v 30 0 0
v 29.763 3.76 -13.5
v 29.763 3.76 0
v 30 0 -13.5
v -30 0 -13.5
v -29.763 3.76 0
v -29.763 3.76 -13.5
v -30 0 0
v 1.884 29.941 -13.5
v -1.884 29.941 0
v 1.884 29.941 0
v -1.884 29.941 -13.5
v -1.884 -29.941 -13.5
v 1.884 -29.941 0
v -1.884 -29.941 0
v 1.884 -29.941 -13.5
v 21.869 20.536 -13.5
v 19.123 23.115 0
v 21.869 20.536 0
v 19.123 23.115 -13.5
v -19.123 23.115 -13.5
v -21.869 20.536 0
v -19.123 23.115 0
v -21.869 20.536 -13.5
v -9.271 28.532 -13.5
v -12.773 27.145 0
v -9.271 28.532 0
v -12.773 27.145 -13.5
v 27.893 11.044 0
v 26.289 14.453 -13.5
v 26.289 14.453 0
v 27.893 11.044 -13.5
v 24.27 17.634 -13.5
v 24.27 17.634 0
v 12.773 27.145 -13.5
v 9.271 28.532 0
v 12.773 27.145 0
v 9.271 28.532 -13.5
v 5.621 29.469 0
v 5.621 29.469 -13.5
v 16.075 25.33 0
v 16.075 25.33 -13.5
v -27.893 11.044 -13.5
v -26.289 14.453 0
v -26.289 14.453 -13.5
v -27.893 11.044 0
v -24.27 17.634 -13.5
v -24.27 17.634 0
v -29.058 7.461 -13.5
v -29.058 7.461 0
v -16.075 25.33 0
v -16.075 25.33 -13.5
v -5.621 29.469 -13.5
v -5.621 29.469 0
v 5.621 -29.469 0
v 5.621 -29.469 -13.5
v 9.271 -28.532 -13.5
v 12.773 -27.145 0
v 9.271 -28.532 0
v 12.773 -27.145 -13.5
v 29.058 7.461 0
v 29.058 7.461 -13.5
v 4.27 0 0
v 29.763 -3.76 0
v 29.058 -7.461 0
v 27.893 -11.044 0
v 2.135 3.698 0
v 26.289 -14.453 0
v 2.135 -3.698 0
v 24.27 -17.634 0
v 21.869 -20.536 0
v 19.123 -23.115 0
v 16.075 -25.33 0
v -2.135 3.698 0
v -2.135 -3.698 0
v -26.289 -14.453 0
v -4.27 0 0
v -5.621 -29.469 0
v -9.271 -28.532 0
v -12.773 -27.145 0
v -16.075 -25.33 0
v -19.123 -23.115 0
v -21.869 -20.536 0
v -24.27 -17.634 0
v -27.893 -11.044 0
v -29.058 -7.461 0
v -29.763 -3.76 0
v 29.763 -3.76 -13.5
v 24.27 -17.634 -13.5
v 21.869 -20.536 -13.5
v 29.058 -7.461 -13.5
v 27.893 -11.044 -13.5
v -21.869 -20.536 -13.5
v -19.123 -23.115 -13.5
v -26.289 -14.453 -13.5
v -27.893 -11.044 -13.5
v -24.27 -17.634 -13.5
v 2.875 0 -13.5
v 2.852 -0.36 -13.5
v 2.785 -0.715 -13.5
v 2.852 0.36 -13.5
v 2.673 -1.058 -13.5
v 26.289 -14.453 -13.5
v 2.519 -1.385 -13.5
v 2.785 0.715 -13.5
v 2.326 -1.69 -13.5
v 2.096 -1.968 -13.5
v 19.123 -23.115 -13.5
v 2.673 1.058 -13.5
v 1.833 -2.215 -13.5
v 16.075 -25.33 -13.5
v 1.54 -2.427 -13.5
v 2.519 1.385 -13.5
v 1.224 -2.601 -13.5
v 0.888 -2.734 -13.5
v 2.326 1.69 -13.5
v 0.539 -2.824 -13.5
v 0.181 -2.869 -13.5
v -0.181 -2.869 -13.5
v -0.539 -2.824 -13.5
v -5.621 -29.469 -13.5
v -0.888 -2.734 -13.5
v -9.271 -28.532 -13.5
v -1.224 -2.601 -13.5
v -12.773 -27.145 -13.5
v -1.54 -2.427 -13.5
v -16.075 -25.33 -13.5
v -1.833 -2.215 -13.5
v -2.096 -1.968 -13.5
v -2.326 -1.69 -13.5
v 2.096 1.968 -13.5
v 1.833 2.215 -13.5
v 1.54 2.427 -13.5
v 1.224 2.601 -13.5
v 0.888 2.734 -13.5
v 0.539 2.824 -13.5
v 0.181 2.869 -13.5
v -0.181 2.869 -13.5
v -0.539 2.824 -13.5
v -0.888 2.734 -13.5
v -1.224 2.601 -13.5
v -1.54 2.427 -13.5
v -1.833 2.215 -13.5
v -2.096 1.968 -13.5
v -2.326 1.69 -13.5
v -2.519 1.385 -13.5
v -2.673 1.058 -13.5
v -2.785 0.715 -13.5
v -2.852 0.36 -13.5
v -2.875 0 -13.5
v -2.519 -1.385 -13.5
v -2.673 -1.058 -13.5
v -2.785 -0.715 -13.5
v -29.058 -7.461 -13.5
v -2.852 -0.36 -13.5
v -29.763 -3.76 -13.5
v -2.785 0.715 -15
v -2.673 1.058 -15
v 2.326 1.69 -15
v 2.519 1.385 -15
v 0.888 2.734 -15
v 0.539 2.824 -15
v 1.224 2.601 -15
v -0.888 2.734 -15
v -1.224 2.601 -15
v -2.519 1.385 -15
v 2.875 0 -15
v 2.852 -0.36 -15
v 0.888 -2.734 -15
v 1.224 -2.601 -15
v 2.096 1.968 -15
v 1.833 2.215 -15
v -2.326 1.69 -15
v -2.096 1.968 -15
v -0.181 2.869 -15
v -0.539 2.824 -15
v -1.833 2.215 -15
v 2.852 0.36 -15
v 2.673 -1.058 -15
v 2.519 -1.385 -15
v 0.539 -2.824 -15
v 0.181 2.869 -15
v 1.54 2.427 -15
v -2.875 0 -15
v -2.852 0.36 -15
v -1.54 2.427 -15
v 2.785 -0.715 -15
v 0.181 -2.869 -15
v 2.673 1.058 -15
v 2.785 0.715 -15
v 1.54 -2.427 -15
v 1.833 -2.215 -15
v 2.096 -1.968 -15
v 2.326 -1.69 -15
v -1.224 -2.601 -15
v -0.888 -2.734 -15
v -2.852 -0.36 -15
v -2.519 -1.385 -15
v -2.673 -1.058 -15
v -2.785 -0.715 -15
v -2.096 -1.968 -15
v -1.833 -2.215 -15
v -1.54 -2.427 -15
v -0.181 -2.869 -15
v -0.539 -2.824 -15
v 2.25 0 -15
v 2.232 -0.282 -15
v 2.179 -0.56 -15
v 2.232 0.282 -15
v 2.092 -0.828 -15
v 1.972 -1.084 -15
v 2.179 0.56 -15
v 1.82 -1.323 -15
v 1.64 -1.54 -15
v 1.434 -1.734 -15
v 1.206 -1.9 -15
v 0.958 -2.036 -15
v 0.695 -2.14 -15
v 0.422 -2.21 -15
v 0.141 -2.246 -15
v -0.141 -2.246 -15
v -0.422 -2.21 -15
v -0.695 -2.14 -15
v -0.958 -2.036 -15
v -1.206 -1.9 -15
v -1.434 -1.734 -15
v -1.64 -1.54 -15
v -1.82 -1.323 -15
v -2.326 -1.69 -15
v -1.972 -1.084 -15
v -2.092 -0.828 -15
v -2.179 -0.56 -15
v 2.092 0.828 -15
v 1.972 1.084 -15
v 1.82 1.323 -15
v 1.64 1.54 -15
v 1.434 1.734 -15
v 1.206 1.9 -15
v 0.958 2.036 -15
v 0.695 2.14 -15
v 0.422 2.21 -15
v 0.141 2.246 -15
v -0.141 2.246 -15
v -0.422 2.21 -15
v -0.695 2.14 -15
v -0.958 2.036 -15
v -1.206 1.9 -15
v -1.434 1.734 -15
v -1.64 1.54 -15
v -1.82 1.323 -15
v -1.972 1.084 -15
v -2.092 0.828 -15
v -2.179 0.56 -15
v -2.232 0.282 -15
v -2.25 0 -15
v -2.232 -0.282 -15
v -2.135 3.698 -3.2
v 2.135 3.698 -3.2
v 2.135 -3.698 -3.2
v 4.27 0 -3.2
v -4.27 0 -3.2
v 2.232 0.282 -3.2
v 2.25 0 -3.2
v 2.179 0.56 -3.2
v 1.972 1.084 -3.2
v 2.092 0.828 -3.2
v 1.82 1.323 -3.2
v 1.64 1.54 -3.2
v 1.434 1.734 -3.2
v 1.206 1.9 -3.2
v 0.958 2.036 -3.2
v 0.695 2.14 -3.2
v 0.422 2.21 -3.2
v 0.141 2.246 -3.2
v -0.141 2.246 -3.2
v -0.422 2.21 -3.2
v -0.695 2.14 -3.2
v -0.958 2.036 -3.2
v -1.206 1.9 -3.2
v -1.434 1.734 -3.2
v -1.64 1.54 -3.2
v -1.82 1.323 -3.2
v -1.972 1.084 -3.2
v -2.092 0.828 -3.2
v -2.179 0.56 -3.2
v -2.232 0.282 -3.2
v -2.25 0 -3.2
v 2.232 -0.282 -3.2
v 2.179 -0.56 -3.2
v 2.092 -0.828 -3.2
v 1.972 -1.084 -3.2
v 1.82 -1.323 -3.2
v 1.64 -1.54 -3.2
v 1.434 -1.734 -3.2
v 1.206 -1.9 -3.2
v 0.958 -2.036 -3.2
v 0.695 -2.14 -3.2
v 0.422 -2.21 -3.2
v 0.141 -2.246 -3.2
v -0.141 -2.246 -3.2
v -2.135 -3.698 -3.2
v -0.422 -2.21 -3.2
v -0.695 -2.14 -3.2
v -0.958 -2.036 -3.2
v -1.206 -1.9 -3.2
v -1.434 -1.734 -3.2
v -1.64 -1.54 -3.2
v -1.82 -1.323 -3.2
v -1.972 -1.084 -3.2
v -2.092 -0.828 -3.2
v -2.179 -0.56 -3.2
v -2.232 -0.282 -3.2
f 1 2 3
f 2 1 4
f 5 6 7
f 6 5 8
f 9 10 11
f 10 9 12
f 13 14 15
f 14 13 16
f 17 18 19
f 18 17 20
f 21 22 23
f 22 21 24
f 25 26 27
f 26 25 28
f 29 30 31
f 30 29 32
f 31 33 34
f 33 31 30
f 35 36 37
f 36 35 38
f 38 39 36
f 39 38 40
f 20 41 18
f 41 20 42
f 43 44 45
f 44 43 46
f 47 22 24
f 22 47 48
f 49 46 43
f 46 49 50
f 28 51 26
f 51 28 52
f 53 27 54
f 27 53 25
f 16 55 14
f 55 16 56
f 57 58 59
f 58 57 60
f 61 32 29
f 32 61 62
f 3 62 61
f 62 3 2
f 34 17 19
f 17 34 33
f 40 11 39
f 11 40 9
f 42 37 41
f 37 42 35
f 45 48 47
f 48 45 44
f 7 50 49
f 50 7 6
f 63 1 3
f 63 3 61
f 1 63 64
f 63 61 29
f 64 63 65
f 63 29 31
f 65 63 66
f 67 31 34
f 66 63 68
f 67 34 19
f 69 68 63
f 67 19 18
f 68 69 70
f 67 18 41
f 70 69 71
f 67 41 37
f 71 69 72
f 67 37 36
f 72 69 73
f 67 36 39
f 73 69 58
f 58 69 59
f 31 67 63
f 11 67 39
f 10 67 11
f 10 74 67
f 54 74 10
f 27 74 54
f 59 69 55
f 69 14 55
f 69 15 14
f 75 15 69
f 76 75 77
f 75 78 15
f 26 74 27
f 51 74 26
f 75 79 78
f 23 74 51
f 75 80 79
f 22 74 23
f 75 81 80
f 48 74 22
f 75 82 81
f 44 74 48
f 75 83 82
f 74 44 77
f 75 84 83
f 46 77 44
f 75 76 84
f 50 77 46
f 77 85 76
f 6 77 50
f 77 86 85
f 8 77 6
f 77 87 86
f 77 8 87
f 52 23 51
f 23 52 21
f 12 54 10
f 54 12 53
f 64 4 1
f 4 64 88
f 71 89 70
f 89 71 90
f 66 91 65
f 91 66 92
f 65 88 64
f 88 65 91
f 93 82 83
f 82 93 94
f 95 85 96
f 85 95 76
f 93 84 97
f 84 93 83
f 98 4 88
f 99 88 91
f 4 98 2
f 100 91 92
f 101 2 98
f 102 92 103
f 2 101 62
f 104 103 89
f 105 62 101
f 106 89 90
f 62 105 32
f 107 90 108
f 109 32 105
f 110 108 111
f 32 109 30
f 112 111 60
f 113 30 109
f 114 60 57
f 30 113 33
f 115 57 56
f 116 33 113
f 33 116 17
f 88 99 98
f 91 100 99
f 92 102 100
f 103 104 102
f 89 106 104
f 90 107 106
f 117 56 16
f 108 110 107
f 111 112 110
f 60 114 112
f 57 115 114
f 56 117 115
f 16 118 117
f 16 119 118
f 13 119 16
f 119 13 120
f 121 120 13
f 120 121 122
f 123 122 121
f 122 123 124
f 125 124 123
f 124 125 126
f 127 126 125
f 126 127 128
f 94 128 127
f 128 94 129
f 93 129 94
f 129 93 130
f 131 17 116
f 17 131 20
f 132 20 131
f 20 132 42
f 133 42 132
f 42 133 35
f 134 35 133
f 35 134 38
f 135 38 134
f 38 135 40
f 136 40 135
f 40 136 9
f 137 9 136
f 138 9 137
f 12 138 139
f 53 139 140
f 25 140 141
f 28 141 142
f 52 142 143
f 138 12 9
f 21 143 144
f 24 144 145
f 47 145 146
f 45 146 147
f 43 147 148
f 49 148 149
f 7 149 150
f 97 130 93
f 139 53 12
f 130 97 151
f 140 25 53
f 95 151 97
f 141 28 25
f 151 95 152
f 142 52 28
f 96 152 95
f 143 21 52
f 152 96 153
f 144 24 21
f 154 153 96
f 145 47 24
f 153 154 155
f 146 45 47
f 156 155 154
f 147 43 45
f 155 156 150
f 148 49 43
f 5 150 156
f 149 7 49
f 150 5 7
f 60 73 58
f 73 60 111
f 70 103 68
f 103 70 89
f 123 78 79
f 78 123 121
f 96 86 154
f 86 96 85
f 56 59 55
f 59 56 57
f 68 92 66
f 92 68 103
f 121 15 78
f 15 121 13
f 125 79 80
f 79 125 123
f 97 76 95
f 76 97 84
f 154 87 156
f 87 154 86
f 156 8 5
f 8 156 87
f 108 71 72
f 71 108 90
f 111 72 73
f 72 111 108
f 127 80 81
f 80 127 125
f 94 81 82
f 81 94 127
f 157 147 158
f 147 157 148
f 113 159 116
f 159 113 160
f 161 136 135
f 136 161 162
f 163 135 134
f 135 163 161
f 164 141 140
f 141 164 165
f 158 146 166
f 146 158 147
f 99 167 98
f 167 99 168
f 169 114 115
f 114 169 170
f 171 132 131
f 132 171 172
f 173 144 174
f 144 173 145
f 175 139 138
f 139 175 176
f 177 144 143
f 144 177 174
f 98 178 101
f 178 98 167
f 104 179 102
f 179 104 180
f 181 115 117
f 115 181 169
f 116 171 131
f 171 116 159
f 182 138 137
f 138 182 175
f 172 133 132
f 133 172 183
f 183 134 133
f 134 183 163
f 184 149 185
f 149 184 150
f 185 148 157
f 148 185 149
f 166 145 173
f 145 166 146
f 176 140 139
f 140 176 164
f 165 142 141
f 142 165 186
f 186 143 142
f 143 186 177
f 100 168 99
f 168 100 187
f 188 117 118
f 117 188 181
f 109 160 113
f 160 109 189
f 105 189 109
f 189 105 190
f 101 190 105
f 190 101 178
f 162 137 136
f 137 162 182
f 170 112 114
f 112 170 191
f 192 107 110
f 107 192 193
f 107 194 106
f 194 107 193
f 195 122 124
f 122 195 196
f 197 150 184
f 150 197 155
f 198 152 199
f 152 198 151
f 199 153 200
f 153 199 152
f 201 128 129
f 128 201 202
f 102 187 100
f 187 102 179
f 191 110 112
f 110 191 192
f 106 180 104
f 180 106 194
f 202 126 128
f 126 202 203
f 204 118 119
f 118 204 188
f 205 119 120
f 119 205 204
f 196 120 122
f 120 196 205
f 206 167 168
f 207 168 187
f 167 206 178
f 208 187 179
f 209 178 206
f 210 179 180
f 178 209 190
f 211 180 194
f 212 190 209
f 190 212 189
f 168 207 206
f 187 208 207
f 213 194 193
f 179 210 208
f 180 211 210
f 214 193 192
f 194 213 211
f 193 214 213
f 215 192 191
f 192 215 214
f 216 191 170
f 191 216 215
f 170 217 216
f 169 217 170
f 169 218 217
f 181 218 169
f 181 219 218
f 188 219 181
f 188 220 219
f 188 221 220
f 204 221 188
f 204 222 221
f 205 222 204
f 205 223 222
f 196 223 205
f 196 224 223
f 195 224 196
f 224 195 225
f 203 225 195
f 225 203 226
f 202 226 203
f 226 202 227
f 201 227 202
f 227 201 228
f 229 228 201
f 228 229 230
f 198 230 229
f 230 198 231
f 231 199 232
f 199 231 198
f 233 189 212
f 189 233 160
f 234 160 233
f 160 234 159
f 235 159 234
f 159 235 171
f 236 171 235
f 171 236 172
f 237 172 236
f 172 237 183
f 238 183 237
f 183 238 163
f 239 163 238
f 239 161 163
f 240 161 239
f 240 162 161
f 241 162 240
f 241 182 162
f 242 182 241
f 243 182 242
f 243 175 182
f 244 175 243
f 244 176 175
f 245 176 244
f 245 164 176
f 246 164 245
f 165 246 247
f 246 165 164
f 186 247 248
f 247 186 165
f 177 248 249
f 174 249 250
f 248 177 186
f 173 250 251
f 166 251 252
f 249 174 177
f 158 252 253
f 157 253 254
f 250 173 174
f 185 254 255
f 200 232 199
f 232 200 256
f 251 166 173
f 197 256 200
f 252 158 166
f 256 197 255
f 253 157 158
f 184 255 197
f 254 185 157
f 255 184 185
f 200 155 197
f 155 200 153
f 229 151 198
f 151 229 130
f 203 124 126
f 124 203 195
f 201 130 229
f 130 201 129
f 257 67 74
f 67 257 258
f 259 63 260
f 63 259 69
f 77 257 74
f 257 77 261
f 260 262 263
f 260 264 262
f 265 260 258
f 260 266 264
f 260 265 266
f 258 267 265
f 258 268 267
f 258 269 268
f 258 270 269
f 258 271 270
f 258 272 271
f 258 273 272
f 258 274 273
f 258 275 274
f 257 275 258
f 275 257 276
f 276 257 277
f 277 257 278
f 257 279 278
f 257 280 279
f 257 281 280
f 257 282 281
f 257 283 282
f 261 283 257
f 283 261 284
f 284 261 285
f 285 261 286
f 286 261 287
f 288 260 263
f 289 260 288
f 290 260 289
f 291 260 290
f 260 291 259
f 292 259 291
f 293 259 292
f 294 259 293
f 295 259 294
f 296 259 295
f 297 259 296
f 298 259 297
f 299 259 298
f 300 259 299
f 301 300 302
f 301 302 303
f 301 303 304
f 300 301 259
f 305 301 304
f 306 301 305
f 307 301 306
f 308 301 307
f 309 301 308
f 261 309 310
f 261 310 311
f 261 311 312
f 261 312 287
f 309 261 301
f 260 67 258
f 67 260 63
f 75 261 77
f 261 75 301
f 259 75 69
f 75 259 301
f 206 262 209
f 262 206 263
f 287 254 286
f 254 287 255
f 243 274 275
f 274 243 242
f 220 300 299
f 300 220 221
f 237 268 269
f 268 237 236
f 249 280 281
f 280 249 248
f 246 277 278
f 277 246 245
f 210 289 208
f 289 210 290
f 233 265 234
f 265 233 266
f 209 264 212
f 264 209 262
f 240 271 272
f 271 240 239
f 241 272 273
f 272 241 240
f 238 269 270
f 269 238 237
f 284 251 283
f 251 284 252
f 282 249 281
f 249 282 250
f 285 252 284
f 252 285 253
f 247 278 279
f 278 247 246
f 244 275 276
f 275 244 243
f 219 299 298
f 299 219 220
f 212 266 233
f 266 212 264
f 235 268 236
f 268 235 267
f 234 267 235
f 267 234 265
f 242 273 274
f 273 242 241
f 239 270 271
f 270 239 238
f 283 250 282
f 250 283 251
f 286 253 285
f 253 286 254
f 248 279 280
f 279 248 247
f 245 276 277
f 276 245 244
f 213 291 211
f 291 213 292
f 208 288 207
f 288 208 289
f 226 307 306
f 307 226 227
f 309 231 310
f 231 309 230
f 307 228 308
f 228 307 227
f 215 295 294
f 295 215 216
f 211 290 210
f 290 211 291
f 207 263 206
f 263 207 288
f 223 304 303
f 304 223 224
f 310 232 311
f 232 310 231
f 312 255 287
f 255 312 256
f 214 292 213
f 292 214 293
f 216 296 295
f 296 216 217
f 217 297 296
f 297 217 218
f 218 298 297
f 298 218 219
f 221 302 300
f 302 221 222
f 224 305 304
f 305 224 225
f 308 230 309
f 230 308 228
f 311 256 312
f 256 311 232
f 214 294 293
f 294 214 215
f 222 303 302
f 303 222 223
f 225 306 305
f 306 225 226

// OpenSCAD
$fn = 50;


difference() {
	union() {
		translate(v = [0, 0, -13.5000000000]) {
			cylinder(h = 13.5000000000, r = 30.0000000000);
		}
		translate(v = [0, 0, -15.0000000000]) {
			cylinder(h = 15, r = 2.8750000000);
		}
	}
	union() {
		translate(v = [0, 0, 0]) {
			rotate(a = [0, 0, 0]) {
				difference() {
					union() {
						translate(v = [0, 0, -3.2000000000]) {
							linear_extrude(height = 3.2000000000) {
								polygon(points = [[4.2698000000, 0.0000000000], [2.1349000000, 3.6977552691], [-2.1349000000, 3.6977552691], [-4.2698000000, 0.0000000000], [-2.1349000000, -3.6977552691], [2.1349000000, -3.6977552691]]);
							}
						}
					}
					union();
				}
			}
		}
		#translate(v = [0, 0, -100.0000000000]) {
			cylinder(h = 200, r = 2.2500000000);
		}
	}
}
